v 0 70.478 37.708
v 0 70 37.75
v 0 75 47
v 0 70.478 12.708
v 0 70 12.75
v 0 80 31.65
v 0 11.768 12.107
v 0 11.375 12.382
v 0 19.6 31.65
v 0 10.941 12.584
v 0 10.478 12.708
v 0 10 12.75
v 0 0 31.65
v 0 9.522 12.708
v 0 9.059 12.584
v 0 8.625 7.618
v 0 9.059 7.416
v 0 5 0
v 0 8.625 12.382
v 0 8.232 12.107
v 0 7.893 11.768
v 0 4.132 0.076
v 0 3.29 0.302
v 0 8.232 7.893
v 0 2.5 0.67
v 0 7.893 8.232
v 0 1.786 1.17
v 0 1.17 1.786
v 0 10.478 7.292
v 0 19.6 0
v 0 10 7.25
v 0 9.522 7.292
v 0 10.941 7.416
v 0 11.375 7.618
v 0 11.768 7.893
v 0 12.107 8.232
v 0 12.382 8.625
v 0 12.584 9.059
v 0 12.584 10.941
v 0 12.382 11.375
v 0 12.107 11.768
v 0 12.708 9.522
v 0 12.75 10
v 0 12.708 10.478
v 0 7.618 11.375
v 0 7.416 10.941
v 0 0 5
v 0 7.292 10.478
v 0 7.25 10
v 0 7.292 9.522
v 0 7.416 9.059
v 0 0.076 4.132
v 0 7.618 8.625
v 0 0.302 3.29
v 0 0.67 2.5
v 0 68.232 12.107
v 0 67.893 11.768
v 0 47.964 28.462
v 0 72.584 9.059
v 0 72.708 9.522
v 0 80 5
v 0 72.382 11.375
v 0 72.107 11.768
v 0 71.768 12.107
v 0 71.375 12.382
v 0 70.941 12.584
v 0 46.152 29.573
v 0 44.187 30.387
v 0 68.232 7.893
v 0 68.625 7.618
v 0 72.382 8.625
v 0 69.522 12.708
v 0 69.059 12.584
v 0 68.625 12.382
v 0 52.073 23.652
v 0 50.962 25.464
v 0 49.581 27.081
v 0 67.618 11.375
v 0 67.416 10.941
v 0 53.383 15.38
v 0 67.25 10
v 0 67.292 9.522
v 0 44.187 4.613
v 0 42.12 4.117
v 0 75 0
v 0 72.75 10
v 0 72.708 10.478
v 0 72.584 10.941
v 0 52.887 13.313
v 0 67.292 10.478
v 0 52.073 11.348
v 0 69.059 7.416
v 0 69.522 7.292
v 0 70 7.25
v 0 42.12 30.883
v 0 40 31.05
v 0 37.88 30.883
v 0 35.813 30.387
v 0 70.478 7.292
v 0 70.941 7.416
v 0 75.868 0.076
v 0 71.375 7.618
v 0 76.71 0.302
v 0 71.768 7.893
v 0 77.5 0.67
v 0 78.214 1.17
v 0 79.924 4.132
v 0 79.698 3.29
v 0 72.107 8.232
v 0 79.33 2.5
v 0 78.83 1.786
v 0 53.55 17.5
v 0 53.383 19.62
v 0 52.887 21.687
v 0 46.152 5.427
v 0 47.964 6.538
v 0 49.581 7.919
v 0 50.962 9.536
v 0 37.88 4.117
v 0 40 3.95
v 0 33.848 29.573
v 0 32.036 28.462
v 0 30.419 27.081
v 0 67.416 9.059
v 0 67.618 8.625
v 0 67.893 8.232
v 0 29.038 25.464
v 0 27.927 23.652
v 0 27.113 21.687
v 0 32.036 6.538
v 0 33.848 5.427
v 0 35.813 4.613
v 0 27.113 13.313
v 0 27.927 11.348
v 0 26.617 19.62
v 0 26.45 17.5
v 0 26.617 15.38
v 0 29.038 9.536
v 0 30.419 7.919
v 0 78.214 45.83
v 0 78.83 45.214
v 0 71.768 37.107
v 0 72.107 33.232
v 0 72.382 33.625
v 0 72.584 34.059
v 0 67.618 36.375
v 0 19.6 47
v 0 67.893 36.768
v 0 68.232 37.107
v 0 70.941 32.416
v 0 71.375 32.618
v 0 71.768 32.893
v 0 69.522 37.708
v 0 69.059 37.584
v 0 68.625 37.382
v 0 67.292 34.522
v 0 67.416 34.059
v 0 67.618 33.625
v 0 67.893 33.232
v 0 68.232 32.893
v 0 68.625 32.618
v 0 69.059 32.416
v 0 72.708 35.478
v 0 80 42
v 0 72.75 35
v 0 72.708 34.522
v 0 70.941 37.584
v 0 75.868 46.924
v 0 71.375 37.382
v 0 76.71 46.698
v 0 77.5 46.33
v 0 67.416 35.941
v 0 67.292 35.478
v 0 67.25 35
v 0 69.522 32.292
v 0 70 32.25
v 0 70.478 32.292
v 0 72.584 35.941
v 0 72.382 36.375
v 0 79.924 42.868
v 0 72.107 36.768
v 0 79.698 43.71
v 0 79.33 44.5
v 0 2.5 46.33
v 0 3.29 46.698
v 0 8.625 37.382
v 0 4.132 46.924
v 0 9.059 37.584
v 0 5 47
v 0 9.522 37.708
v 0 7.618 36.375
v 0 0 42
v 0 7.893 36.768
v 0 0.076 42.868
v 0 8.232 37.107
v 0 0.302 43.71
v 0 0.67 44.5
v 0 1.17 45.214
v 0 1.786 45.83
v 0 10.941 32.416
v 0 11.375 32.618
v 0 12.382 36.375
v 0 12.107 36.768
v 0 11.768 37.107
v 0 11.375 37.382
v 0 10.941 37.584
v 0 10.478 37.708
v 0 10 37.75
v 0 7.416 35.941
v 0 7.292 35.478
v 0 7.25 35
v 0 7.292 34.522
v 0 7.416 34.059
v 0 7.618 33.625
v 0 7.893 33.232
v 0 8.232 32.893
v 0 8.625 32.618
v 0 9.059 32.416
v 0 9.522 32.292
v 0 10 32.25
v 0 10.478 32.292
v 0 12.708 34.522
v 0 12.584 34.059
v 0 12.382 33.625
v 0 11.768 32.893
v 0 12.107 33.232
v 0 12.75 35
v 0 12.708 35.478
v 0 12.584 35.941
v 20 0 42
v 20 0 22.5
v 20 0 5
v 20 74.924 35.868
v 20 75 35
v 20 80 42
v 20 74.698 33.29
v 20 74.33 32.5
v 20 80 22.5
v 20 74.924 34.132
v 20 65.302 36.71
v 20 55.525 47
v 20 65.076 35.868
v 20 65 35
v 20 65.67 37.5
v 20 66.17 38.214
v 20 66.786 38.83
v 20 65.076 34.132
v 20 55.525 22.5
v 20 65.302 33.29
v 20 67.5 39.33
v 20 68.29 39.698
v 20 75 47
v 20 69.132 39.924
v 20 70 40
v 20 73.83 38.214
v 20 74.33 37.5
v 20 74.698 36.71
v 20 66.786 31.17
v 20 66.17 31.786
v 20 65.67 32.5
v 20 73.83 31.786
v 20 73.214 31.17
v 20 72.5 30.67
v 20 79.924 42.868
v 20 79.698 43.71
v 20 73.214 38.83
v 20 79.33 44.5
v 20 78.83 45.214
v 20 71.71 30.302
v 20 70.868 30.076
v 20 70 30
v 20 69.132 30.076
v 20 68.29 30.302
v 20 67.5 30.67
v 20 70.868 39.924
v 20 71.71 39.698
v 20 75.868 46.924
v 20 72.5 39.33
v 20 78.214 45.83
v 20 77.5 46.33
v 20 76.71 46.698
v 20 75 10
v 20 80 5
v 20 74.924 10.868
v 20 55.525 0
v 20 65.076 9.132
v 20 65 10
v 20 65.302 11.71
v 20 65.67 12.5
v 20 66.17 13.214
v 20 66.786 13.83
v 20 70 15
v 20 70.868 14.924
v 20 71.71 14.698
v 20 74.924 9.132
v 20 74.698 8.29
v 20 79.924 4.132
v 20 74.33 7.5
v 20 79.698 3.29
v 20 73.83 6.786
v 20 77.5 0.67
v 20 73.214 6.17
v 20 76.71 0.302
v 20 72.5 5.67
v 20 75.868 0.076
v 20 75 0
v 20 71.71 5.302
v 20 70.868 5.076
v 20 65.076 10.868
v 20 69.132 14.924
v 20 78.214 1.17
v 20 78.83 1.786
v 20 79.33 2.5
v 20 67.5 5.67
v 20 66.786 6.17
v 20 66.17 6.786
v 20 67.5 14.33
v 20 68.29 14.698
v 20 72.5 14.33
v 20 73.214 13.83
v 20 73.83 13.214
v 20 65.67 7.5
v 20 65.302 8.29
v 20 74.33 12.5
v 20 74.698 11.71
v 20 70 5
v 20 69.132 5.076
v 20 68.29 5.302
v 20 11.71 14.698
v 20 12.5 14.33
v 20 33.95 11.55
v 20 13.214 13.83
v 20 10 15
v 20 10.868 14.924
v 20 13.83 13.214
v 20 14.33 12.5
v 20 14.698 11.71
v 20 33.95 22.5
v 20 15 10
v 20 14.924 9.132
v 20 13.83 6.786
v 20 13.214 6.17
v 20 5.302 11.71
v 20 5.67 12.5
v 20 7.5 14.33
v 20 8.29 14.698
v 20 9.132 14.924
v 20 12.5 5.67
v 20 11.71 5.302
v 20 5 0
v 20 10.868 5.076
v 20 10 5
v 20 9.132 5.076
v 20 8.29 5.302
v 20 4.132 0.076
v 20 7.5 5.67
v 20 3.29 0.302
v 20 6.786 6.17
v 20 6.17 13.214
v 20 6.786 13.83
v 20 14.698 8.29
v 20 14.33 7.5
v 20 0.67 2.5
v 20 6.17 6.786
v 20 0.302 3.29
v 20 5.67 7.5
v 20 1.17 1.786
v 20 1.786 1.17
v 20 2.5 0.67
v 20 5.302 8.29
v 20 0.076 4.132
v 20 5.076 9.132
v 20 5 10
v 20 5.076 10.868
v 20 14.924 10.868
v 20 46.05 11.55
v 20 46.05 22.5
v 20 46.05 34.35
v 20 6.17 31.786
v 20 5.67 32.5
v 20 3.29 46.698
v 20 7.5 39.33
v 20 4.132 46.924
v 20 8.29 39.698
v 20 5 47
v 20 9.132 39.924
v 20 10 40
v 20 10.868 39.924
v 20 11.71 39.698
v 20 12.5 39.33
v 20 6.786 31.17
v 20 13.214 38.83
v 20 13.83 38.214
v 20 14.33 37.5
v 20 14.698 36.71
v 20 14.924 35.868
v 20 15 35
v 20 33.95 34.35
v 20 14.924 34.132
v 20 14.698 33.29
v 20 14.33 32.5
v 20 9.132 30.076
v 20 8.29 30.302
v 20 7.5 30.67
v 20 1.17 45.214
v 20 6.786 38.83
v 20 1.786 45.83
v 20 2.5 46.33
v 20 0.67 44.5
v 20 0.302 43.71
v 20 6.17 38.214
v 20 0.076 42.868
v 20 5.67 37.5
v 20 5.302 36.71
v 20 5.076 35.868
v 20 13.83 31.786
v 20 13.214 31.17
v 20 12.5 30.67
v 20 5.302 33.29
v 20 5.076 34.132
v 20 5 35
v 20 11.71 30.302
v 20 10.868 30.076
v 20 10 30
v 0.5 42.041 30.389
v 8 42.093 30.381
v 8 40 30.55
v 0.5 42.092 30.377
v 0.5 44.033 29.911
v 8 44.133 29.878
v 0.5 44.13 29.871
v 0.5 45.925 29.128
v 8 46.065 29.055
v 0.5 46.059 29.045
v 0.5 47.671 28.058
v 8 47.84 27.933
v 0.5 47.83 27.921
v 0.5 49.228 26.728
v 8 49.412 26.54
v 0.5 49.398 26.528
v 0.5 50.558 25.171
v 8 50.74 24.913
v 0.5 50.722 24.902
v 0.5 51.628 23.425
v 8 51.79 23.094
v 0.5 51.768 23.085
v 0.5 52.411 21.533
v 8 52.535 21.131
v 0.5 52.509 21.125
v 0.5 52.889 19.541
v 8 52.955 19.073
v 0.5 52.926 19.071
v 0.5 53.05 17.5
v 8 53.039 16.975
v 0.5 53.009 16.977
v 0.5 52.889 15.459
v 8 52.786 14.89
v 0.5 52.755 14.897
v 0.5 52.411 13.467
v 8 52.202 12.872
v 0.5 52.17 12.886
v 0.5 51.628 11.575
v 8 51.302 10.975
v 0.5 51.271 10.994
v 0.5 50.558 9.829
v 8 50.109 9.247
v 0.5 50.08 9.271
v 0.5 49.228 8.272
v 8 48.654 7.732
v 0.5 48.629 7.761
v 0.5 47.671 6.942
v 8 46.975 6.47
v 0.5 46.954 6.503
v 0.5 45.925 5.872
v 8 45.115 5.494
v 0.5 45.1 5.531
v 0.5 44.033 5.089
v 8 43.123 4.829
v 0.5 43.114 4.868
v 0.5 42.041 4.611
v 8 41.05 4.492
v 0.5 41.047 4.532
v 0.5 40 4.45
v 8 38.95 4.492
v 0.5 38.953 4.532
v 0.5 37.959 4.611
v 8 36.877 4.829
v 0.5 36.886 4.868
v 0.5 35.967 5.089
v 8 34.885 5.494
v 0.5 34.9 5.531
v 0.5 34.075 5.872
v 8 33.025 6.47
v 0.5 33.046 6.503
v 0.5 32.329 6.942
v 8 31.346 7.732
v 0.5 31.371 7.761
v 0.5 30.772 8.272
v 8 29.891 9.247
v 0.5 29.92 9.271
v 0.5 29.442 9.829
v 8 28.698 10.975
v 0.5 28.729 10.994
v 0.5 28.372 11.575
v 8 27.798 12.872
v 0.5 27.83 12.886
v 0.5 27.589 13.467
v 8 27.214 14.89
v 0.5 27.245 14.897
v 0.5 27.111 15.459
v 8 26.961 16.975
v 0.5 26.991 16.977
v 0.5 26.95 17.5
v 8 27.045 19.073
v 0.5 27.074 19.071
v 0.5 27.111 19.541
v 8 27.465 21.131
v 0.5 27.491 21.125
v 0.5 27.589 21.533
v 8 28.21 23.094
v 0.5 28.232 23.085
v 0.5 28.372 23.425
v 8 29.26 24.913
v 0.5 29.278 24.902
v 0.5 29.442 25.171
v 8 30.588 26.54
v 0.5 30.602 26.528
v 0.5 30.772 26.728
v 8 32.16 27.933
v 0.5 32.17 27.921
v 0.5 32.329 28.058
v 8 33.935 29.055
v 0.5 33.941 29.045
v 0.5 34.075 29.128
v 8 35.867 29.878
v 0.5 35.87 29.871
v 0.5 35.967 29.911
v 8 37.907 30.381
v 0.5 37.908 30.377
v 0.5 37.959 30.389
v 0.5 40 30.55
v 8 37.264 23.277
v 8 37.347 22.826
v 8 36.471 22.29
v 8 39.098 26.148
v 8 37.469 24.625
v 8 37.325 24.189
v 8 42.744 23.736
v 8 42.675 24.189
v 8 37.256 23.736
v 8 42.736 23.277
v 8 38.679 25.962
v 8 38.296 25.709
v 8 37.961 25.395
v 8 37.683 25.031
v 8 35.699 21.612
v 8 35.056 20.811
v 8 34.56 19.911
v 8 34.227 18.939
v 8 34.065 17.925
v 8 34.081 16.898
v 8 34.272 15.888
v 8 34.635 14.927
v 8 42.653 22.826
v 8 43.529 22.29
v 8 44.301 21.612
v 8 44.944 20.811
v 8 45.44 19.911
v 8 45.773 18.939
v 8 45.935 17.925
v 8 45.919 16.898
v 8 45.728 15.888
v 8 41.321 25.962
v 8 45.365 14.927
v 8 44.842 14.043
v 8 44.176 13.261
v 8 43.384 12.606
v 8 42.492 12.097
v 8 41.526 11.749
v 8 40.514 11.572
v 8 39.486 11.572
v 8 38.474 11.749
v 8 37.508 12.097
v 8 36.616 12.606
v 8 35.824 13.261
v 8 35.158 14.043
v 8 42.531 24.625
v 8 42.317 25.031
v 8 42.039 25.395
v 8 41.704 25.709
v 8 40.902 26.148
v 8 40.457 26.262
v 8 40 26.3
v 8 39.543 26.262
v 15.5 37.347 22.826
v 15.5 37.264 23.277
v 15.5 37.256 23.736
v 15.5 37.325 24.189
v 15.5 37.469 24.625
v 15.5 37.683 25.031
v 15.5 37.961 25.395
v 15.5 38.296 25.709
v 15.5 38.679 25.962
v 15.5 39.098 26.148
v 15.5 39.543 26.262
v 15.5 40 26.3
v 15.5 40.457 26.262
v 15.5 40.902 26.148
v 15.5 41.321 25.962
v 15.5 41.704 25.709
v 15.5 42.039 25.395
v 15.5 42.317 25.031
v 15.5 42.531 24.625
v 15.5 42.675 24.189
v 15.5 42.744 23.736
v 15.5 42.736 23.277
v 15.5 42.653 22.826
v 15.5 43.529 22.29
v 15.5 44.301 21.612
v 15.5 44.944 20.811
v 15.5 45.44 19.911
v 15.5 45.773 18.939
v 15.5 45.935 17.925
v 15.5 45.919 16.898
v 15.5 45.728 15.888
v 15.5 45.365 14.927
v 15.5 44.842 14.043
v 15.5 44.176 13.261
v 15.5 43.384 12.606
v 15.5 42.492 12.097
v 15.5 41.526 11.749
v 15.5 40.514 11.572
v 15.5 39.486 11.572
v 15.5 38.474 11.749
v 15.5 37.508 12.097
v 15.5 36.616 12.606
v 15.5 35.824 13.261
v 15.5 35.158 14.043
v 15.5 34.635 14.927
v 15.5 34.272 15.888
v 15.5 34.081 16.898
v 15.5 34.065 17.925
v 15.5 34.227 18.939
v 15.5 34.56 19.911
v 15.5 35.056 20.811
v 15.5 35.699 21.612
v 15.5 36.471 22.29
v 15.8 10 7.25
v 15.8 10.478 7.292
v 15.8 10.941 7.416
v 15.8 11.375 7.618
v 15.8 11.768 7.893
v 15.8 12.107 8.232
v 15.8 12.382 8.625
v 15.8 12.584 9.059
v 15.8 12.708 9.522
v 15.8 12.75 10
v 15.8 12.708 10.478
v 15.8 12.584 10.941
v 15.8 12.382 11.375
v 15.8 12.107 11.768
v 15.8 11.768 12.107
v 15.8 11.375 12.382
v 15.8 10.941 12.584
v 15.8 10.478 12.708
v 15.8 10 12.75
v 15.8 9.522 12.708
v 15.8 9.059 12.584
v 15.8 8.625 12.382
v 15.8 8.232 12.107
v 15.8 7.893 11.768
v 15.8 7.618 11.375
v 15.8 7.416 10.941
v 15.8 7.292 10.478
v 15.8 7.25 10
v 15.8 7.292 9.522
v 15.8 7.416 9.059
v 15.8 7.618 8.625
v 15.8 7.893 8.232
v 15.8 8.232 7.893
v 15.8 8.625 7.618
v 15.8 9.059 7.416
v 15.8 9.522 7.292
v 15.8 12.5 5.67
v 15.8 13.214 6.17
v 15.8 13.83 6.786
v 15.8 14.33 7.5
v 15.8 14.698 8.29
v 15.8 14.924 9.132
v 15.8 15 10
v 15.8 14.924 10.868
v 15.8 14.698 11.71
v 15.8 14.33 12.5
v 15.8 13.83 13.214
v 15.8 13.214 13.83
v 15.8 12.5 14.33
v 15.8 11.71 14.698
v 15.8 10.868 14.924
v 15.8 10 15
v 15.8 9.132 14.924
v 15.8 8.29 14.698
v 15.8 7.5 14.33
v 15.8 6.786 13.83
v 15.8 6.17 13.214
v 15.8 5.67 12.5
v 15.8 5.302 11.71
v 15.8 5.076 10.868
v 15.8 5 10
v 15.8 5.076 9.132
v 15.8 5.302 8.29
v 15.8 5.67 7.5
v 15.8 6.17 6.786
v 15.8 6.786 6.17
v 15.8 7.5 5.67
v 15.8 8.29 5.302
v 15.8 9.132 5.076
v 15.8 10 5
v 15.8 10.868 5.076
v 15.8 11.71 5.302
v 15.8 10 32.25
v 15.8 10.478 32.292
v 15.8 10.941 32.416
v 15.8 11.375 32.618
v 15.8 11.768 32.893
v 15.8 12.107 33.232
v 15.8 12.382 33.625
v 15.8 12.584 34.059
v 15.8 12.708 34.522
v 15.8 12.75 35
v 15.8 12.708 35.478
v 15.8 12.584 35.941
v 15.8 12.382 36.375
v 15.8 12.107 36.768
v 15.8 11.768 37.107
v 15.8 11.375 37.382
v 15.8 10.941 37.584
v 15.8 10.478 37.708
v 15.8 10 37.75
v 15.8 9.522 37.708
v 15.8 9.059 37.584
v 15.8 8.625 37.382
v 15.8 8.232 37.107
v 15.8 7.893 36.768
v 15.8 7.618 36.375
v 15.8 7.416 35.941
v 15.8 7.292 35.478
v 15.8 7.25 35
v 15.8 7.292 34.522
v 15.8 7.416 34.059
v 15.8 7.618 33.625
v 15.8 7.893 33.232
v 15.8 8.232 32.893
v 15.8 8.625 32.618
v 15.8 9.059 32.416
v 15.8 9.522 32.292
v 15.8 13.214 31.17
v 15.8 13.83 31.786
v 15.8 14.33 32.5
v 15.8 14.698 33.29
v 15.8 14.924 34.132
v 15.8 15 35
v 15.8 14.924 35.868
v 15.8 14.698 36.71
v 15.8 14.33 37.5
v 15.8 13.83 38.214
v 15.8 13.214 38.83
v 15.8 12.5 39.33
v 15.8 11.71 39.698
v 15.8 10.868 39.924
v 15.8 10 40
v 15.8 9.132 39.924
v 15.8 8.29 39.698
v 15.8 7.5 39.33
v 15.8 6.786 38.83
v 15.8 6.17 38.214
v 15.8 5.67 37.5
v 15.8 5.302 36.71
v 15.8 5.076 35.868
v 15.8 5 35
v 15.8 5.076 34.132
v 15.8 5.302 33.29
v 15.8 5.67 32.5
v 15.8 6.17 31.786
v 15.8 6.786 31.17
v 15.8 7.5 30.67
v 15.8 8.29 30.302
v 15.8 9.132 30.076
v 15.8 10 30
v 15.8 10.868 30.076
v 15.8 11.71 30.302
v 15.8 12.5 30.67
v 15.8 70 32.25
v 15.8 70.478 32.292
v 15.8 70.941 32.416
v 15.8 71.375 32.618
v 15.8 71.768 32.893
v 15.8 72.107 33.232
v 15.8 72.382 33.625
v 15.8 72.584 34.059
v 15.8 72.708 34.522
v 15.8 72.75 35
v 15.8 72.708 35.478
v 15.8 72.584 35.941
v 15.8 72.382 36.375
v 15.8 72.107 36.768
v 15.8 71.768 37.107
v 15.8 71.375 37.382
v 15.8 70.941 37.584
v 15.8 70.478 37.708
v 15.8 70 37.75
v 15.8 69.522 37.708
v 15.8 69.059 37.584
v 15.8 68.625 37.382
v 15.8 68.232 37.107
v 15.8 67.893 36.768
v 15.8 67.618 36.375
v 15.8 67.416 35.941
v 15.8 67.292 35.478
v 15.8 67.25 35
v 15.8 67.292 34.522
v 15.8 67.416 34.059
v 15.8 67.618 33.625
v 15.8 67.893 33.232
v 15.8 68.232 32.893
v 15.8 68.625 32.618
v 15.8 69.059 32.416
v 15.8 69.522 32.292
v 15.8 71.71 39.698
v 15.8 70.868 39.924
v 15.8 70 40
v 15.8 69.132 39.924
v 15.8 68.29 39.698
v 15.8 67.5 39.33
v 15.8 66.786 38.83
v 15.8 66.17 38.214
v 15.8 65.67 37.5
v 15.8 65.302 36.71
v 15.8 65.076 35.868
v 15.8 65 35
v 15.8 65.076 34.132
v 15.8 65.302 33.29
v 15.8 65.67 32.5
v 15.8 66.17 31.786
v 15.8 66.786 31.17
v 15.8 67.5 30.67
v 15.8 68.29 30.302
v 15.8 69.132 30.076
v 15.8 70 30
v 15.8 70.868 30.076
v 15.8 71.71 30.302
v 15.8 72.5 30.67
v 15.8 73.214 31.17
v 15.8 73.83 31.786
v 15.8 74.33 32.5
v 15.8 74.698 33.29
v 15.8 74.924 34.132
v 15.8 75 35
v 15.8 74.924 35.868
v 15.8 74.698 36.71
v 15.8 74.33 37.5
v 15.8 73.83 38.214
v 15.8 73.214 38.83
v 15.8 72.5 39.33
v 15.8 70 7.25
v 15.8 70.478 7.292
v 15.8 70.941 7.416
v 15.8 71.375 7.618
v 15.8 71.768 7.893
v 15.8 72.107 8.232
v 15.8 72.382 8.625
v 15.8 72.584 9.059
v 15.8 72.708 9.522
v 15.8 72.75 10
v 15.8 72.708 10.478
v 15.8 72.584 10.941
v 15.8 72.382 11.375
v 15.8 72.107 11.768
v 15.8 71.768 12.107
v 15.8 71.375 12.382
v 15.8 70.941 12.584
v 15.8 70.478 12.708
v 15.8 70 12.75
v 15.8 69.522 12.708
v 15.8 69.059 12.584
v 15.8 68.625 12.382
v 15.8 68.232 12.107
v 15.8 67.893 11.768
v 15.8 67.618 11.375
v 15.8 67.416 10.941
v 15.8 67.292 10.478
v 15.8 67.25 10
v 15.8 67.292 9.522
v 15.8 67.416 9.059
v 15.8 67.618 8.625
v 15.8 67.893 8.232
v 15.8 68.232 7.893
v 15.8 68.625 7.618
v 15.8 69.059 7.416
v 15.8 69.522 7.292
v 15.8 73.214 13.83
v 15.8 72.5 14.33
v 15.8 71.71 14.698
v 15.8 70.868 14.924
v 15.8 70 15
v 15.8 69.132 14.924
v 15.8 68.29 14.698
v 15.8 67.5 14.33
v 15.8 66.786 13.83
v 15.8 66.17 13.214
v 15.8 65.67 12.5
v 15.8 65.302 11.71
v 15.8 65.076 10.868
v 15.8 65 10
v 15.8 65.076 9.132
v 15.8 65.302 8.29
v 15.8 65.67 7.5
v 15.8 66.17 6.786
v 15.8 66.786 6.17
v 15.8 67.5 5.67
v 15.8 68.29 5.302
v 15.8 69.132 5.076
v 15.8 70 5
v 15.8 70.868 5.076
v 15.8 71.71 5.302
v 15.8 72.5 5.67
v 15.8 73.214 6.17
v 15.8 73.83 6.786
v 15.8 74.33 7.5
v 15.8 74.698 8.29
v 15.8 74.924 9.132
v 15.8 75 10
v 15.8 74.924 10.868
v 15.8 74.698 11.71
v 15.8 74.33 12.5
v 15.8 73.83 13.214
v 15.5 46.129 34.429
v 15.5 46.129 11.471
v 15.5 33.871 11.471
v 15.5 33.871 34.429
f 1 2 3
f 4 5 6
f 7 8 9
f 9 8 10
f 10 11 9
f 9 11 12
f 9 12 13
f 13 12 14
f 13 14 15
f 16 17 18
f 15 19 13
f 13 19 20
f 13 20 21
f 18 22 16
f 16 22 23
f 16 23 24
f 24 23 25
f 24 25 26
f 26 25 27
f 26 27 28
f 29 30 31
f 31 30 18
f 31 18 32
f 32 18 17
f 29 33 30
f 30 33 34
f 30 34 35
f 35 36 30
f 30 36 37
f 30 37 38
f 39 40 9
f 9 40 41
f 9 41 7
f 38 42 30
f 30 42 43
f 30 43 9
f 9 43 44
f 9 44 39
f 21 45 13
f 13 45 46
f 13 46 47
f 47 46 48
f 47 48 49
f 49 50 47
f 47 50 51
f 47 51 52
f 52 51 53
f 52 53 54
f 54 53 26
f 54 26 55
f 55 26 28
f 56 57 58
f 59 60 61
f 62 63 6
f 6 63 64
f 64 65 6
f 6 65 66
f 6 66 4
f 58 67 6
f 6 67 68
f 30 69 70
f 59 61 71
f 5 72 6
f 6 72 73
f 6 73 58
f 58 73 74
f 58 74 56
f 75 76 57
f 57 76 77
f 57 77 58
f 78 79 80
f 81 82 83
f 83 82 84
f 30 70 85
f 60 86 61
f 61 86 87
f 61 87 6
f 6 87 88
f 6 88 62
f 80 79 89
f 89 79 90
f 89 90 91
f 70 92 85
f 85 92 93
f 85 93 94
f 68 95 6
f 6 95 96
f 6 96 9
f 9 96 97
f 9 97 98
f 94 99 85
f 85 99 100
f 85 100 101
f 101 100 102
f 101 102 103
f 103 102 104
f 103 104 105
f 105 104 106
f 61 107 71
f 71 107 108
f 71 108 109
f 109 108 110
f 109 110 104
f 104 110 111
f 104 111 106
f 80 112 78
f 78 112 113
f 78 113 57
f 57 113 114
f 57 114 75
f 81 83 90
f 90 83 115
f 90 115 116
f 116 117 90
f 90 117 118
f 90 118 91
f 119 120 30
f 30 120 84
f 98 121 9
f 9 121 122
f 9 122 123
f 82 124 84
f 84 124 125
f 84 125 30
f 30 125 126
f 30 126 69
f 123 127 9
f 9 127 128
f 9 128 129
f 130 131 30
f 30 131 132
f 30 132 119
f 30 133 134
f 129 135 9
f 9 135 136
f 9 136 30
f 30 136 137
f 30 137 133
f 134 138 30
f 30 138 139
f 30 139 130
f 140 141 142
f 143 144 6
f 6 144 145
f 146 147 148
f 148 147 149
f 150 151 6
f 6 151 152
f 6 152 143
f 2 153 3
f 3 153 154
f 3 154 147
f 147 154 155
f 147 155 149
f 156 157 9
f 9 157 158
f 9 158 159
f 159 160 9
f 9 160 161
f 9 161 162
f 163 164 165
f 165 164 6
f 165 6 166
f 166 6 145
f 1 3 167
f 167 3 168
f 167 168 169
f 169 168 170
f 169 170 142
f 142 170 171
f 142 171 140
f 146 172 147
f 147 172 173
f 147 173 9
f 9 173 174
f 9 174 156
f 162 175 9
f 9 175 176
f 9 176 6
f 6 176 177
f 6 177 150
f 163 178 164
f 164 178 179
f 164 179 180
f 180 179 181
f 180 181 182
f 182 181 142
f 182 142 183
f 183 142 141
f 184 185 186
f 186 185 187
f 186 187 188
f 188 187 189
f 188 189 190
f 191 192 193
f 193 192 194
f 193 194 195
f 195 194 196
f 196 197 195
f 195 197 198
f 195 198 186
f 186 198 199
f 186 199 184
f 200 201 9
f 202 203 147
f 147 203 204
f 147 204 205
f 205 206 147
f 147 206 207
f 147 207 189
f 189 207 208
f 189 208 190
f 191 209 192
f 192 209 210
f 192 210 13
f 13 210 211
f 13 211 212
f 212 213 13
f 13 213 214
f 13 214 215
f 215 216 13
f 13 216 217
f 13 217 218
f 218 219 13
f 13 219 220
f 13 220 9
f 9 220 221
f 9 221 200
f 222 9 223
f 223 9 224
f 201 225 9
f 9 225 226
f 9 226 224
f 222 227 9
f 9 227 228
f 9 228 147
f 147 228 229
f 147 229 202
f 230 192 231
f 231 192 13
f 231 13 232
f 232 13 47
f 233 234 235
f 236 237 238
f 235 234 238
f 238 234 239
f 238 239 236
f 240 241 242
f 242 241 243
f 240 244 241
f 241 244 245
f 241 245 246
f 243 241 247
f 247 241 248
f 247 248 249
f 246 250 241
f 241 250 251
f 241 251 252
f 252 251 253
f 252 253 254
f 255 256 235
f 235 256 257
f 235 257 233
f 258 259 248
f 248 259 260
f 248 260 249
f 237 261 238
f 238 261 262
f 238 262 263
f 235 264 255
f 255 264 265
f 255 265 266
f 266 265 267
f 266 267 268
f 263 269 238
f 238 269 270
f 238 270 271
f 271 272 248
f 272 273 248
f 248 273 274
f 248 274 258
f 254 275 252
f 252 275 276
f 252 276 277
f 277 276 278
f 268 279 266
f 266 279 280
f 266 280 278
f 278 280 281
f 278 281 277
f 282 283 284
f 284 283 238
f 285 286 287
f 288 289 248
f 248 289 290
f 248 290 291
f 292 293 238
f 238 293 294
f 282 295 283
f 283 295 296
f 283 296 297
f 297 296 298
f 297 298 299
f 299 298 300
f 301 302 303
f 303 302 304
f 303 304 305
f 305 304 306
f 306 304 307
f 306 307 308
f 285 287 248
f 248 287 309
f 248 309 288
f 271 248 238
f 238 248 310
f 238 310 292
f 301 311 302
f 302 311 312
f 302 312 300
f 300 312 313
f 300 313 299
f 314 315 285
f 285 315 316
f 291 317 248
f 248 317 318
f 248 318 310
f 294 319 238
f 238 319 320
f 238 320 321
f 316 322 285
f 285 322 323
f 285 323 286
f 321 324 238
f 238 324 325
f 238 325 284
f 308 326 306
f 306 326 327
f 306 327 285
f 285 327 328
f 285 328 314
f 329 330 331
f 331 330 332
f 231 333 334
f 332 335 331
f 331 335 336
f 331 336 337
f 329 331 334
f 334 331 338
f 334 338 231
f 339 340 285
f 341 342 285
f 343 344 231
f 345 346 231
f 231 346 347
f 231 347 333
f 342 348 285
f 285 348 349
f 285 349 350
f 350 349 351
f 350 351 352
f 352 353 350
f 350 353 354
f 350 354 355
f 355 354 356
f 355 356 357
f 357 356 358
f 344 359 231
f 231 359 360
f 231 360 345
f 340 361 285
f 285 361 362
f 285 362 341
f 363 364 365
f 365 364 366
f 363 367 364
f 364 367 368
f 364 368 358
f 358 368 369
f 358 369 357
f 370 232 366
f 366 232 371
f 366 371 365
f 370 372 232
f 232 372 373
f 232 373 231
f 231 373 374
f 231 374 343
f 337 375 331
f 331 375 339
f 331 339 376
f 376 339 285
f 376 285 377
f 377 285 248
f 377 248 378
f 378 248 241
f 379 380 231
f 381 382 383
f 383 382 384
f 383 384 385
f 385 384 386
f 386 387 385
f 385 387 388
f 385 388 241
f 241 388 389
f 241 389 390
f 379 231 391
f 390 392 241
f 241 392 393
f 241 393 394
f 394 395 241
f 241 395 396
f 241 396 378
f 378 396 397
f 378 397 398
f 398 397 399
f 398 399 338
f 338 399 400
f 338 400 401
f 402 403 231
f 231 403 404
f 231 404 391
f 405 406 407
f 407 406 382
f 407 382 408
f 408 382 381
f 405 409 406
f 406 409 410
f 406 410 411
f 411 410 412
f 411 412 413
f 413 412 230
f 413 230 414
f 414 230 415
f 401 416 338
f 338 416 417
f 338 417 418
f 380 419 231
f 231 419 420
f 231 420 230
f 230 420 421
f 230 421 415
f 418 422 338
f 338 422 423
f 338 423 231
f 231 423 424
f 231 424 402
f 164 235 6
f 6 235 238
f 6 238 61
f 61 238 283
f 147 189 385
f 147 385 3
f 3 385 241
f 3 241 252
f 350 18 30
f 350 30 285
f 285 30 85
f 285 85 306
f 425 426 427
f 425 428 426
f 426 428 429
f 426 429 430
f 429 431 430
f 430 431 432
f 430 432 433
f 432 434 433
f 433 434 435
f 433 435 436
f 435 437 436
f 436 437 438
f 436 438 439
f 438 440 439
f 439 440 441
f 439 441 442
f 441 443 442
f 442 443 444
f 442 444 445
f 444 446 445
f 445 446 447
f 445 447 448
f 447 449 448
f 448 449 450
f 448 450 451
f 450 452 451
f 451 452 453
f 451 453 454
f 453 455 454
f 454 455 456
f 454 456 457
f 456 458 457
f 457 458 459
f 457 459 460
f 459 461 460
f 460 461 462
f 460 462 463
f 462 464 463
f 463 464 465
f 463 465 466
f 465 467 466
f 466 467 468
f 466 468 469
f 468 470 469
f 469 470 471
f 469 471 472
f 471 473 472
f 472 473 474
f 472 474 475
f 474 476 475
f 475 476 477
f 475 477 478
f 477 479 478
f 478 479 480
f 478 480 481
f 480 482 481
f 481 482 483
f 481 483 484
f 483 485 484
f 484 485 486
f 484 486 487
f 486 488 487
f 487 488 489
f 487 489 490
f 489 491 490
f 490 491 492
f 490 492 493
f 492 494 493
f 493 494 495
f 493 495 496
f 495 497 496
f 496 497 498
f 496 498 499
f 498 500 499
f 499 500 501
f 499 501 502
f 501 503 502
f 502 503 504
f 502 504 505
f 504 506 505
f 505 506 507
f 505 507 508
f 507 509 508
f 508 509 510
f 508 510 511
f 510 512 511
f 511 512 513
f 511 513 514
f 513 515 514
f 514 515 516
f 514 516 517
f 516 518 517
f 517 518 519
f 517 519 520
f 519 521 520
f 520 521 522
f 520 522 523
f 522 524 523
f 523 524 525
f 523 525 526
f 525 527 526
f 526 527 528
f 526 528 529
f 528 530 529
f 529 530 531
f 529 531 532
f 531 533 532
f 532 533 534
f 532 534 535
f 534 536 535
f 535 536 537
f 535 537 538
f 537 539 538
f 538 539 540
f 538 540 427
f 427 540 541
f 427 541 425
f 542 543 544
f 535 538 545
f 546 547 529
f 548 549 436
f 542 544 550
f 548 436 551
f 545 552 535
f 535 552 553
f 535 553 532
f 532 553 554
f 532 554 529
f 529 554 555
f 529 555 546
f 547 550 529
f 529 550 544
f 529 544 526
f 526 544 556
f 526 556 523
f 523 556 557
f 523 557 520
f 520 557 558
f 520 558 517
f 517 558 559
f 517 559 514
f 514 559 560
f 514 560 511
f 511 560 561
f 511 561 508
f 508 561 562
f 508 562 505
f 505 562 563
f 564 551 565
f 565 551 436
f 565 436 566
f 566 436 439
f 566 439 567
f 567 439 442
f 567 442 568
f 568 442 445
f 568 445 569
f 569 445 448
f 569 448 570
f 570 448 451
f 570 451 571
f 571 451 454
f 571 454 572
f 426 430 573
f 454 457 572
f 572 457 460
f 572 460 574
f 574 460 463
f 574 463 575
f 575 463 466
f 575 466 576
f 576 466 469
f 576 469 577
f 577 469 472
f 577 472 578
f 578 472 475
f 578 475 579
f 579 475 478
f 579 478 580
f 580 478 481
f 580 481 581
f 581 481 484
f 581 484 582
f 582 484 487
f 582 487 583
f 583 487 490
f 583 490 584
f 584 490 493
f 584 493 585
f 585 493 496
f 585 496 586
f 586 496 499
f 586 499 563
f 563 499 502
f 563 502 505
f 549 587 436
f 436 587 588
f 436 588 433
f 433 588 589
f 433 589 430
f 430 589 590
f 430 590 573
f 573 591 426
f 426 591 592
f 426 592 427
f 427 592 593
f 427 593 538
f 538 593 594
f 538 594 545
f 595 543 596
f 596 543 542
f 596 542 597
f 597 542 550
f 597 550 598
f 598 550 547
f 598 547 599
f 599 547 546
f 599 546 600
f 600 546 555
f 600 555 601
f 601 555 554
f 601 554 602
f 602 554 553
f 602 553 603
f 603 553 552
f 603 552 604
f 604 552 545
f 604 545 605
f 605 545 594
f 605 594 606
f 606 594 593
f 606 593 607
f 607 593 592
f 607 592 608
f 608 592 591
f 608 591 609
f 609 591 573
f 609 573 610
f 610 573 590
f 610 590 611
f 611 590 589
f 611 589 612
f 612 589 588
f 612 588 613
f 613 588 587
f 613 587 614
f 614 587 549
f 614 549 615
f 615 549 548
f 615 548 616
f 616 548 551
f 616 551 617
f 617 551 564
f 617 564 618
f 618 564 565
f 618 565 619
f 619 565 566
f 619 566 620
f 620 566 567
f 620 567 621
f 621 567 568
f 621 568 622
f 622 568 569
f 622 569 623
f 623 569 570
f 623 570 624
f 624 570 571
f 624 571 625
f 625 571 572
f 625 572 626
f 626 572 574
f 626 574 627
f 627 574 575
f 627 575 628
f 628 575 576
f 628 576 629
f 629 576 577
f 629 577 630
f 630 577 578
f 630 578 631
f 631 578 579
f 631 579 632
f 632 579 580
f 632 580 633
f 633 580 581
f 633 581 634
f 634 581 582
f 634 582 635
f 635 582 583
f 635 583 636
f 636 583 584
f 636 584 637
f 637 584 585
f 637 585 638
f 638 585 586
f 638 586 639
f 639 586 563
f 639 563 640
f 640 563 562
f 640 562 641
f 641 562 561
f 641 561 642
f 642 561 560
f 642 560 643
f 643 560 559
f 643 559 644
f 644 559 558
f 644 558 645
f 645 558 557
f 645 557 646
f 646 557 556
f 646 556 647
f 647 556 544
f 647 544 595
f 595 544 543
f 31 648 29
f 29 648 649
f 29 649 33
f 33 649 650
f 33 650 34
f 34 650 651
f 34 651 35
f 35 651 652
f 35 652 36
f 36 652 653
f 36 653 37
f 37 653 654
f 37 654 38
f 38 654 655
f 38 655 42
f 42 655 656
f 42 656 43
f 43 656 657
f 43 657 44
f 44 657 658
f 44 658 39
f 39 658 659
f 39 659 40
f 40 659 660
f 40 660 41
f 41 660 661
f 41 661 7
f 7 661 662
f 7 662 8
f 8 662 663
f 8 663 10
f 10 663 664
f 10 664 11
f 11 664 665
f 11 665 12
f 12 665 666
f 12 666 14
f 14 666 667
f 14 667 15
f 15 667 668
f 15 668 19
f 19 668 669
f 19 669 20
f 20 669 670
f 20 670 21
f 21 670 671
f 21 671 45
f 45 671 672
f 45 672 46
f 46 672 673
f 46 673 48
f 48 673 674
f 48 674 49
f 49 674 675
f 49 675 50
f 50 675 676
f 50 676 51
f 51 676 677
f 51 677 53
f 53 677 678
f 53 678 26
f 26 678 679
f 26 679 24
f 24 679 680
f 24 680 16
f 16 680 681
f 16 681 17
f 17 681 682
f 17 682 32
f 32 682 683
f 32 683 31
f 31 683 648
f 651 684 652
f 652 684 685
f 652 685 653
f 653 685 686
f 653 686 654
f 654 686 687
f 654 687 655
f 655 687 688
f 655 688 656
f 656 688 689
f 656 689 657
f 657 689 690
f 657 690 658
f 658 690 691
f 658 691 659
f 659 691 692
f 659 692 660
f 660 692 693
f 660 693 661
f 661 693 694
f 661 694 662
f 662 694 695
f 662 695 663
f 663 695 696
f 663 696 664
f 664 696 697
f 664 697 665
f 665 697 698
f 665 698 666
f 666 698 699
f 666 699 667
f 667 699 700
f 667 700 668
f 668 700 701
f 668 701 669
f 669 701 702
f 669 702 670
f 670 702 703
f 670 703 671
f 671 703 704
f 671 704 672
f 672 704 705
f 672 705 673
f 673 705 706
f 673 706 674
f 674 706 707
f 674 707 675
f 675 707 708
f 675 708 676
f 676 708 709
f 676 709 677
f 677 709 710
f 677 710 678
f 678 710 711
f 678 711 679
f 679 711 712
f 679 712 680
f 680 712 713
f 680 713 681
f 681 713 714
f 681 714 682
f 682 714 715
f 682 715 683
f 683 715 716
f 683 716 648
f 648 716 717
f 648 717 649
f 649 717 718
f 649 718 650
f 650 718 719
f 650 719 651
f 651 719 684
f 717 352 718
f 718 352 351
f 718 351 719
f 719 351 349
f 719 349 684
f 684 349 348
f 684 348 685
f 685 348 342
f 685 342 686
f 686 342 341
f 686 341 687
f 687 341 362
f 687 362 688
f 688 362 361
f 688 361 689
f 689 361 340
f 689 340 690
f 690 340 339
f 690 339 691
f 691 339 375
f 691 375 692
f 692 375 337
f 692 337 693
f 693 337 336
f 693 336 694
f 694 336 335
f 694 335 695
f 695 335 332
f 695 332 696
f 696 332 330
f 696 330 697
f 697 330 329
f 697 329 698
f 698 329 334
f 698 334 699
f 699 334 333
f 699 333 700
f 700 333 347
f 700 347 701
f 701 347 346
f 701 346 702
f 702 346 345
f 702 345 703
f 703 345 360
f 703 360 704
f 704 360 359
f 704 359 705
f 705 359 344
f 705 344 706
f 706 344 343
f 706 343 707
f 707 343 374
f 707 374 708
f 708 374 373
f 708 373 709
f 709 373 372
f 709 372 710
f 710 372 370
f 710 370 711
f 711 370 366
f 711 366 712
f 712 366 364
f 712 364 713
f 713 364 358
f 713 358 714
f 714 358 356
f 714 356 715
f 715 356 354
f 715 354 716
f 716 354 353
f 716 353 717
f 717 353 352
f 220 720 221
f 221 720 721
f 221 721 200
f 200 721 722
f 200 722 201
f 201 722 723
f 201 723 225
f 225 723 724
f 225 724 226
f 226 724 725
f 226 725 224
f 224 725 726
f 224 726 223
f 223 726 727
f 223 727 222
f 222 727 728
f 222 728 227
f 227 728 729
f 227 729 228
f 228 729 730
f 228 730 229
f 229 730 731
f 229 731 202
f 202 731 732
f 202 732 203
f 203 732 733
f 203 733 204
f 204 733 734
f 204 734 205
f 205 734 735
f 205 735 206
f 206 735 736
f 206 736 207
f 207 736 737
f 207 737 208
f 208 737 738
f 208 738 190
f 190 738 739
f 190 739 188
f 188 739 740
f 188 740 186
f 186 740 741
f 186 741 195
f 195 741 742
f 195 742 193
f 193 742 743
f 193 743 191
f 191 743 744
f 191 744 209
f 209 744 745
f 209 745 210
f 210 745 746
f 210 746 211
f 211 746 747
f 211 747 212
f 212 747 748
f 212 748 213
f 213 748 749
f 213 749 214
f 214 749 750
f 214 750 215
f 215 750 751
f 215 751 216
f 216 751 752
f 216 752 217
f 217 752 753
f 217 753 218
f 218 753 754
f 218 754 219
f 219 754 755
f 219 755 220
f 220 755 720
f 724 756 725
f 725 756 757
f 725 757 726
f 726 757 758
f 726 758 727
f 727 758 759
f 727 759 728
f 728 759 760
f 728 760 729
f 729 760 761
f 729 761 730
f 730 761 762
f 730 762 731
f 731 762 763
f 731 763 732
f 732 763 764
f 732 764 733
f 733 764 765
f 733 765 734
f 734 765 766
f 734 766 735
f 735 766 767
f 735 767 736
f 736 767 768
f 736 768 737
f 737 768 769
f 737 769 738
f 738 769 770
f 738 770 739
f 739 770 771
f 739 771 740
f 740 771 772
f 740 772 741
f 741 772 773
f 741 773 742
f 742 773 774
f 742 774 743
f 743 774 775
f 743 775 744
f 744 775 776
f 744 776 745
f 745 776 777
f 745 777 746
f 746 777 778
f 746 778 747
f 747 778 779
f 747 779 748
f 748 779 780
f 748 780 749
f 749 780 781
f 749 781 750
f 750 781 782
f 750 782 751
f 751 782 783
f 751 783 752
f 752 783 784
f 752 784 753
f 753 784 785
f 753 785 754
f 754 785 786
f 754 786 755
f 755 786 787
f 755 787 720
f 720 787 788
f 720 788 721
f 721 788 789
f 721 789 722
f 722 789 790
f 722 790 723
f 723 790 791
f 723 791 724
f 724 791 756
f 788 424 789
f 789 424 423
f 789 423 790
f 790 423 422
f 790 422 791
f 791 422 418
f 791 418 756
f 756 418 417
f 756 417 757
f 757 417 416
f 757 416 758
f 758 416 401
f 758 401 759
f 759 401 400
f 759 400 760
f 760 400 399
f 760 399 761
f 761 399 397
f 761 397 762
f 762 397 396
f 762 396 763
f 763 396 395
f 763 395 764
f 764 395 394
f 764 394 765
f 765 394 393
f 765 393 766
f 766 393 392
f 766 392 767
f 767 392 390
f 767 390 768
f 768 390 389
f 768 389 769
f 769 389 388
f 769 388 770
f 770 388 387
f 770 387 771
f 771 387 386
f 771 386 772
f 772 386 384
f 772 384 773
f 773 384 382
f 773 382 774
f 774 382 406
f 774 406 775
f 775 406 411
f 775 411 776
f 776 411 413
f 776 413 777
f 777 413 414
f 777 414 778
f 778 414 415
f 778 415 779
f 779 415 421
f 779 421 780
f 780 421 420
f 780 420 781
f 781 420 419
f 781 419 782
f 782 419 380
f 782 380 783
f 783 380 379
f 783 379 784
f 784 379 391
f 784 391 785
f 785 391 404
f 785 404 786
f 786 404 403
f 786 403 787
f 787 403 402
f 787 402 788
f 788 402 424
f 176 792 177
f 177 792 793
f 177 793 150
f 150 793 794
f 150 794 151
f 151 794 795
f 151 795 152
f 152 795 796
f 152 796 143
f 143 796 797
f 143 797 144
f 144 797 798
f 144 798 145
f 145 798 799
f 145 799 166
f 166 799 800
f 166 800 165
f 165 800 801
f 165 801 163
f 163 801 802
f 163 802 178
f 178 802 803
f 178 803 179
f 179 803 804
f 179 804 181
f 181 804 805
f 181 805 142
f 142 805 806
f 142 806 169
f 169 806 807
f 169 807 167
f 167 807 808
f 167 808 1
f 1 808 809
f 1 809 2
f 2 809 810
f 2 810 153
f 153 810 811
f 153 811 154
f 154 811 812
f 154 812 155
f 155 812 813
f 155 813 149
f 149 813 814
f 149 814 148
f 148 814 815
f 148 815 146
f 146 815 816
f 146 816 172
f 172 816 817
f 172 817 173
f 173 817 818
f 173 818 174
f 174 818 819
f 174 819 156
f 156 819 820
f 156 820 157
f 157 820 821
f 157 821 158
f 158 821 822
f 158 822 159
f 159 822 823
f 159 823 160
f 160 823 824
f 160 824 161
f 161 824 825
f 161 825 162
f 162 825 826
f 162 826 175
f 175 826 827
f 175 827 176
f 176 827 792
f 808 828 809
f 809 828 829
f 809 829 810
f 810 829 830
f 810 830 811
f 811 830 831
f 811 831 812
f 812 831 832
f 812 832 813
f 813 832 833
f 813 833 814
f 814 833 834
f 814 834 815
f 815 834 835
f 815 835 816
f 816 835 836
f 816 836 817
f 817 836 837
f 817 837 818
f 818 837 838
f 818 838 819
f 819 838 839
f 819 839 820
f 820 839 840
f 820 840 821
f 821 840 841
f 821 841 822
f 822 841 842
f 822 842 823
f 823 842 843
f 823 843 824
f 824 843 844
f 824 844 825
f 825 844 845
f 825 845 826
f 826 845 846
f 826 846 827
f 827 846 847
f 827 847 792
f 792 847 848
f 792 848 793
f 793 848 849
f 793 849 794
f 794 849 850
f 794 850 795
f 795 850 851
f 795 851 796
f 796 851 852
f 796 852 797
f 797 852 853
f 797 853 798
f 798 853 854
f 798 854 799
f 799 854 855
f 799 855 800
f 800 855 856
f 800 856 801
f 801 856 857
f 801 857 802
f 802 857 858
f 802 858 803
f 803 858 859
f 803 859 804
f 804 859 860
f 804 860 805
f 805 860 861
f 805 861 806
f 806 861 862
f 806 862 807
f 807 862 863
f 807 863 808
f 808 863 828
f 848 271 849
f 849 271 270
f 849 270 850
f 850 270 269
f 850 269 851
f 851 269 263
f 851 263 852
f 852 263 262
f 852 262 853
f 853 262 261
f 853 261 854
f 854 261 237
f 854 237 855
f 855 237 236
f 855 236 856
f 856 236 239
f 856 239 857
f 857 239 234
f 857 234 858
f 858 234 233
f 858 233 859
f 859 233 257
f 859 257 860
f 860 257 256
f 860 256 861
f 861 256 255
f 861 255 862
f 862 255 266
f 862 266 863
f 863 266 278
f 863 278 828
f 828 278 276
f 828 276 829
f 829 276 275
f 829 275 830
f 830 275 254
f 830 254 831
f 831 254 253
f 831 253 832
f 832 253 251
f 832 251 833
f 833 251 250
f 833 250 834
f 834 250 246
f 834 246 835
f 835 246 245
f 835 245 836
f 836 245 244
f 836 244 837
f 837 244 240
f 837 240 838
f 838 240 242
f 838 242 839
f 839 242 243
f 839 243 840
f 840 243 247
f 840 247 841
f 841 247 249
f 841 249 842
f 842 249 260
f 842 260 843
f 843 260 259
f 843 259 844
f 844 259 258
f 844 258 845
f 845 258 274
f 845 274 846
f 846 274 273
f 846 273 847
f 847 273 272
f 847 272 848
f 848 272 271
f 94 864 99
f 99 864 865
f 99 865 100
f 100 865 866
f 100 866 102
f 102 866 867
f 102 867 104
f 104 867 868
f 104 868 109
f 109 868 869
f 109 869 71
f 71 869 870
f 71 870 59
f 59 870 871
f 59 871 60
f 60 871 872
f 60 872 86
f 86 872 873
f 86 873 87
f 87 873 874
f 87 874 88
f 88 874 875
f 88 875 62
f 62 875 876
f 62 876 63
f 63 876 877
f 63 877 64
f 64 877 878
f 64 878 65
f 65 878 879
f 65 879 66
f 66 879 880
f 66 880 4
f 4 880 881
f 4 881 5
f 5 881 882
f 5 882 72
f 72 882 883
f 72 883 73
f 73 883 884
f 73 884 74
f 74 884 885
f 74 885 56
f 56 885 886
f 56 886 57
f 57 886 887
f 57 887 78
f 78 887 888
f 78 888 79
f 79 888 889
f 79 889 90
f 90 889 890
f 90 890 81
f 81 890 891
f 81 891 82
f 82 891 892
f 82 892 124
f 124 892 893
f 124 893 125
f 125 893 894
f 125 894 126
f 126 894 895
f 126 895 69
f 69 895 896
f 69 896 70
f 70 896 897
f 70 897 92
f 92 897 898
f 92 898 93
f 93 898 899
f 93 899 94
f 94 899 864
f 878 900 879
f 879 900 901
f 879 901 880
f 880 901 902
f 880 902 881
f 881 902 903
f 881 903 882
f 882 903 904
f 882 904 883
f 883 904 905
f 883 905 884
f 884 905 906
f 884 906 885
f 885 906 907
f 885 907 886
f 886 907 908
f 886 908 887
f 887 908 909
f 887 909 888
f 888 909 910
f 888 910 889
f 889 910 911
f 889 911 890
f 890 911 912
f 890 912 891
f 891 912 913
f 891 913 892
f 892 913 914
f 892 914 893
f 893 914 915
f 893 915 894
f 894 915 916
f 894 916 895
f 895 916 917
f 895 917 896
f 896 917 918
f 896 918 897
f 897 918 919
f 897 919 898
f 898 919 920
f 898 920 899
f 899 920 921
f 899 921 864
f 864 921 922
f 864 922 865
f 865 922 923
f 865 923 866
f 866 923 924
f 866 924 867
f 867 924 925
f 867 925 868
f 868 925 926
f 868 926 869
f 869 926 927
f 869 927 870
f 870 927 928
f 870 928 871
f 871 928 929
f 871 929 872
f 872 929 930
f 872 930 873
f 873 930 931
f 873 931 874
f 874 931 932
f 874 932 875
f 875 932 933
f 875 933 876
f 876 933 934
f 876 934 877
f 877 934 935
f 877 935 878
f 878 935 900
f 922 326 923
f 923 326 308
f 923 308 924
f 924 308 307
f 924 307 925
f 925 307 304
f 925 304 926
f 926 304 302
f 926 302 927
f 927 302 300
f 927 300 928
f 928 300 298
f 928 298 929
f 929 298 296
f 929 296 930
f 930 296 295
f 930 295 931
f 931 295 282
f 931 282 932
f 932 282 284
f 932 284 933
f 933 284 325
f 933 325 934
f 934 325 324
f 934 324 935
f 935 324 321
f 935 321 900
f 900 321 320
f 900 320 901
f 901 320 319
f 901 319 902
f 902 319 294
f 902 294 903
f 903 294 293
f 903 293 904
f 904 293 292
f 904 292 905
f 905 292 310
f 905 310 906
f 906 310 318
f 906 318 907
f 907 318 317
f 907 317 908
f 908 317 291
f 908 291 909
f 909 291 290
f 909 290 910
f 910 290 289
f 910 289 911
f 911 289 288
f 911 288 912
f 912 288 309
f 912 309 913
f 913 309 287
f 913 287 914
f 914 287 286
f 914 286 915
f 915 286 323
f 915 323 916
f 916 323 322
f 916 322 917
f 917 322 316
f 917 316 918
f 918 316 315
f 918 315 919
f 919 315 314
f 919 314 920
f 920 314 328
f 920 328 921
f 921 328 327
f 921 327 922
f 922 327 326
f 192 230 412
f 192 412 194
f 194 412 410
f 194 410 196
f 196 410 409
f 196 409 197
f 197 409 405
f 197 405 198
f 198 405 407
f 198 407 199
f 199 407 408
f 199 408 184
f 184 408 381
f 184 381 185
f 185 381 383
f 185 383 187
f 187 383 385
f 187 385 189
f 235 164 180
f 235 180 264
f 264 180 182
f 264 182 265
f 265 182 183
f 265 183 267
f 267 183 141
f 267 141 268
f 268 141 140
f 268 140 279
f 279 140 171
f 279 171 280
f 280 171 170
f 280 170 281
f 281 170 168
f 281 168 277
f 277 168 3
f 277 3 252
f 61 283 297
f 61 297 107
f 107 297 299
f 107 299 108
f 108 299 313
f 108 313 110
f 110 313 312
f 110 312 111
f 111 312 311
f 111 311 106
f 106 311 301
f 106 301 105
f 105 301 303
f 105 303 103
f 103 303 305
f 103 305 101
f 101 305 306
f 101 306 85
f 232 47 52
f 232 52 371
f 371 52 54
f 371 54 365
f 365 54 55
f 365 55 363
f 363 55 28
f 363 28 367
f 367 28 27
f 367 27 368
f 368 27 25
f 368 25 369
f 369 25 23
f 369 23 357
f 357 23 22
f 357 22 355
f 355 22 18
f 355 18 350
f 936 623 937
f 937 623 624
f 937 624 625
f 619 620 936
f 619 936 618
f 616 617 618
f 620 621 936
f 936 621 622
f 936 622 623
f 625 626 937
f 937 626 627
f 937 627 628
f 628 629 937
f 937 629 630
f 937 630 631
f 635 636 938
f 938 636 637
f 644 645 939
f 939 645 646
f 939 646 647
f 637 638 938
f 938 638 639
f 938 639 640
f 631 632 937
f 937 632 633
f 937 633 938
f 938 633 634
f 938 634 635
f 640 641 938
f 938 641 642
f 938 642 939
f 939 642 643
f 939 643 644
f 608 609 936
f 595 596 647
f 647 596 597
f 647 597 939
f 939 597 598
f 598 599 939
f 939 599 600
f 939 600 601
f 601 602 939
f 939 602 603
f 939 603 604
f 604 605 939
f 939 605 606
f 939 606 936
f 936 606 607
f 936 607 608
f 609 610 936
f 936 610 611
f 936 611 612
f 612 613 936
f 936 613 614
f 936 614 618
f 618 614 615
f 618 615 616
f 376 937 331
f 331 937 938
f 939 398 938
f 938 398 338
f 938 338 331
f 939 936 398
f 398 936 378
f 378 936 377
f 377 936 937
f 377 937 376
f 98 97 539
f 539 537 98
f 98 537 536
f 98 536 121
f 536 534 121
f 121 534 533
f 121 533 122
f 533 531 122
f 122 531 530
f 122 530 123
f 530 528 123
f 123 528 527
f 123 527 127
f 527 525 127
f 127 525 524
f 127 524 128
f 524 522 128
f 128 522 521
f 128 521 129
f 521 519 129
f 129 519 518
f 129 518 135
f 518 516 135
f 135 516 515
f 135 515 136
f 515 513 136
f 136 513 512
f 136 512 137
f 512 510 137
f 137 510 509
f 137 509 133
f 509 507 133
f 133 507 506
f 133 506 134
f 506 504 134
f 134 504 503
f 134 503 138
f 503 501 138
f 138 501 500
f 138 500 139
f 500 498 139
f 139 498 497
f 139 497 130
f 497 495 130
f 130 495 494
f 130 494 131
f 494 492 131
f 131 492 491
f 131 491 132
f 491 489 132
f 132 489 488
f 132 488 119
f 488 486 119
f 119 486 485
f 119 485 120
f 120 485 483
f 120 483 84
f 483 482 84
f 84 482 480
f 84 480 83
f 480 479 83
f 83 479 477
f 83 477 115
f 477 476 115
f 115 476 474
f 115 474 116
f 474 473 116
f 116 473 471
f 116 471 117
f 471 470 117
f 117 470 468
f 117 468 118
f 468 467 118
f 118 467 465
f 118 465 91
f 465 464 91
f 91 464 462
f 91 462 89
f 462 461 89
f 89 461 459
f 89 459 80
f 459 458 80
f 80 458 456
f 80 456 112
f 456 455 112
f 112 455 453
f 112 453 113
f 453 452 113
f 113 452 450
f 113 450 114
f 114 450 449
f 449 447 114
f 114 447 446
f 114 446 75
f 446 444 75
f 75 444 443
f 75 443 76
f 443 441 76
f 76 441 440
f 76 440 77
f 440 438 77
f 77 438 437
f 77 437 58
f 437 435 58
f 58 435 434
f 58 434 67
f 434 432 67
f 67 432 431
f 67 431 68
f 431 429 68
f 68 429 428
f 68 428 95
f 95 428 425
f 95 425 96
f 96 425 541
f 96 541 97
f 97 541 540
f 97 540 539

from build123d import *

# Parameters (mm, degrees)
ESQUISSE1_W                                        = 20
ESQUISSE1_H                                        = 80
BOSS_EXTRU_1_DEPTH                                 = 47
ESQUISSE2_R                                        = 13.05
ENL_V_MAT_EXTRU_1_DEPTH                            = 8
ENL_V_MAT_EXTRU_2_REACH                            = 14
CHAMBRAGE_POUR_VIS_T_TE_HEXAGONALE_M52_D           = 5.5
CHAMBRAGE_POUR_VIS_T_TE_HEXAGONALE_M52_CBORE_D     = 10
CHAMBRAGE_POUR_VIS_T_TE_HEXAGONALE_M52_CBORE_DEPTH = 4.2
CONG_1_R                                           = 5
ESQUISSE8_W                                        = 22.8
ESQUISSE8_H                                        = 12.1
ENL_V_MAT_EXTRU_4_DEPTH                            = 4.5
ENL_V_MAT_EXTRU_4_TAPER                            = -1
CHANFREIN1_SIZE                                    = 0.5


with BuildPart() as part:
    # Esquisse1 → Boss.-Extru.1 (new body)
    with BuildSketch(Plane.XY):
        with Locations((10, 40)):
            Rectangle(ESQUISSE1_W, ESQUISSE1_H)
    extrude(amount=BOSS_EXTRU_1_DEPTH)

    # Esquisse2 → Enlèv. mat.-Extru.1 (cut)
    with BuildSketch(Plane.ZY):
        with Locations((17.5, 40)):
            Circle(ESQUISSE2_R)
    extrude(amount=-ENL_V_MAT_EXTRU_1_DEPTH, mode=Mode.SUBTRACT)

    # Esquisse3 → Enlèv. mat.-Extru.2 (cut, up to next)
    with BuildSketch(Plane.ZY.offset(-8), mode=Mode.PRIVATE) as enl_v_mat_extru_2_sk1:
        with BuildLine():
            ThreePointArc((22.825826446, 42.652936611), (11.55, 40), (22.825826446, 37.347063389))
            ThreePointArc((22.825826446, 37.347063389), (26.3, 40), (22.825826446, 42.652936611))
        make_face()
    enl_v_mat_extru_2_tool1 = extrude(enl_v_mat_extru_2_sk1.sketch, amount=-ENL_V_MAT_EXTRU_2_REACH, mode=Mode.PRIVATE) & part.part
    add(enl_v_mat_extru_2_tool1.solids().sort_by_distance((8, 40, 18.266678))[0], mode=Mode.SUBTRACT)

    # Chambrage pour vis à tête hexagonale M52 (through all)
    with Locations(Plane(origin=(20, 0, 0), x_dir=(0, 0, -1), z_dir=(1, 0, 0))):
        with Locations((-10, 70), (-35, 70), (-35, 10), (-10, 10)):
            CounterBoreHole(CHAMBRAGE_POUR_VIS_T_TE_HEXAGONALE_M52_D / 2, CHAMBRAGE_POUR_VIS_T_TE_HEXAGONALE_M52_CBORE_D / 2, CHAMBRAGE_POUR_VIS_T_TE_HEXAGONALE_M52_CBORE_DEPTH)

    # Congé1
    cong_1_edges = [part.edges().sort_by_distance(p)[0] for p in [
        (10, 80, 47),
        (10, 80, 0),
        (10, 0, 0),
        (10, 0, 47),
    ]]
    fillet(cong_1_edges, radius=CONG_1_R)

    # Esquisse8 → Enlèv. mat.-Extru.4 (cut)
    with BuildSketch(Plane(origin=(20, 0, 0), x_dir=(0, 0, -1), z_dir=(1, 0, 0))):
        with Locations((-22.95, 40)):
            Rectangle(ESQUISSE8_W, ESQUISSE8_H)
    extrude(amount=-ENL_V_MAT_EXTRU_4_DEPTH, taper=ENL_V_MAT_EXTRU_4_TAPER, mode=Mode.SUBTRACT)

    # Chanfrein1
    chanfrein1_edges = [part.edges().sort_by_distance(p)[0] for p in [
        (0, 40, 4.45),
    ]]
    chamfer(chanfrein1_edges, length=CHANFREIN1_SIZE)


solid = part.part
